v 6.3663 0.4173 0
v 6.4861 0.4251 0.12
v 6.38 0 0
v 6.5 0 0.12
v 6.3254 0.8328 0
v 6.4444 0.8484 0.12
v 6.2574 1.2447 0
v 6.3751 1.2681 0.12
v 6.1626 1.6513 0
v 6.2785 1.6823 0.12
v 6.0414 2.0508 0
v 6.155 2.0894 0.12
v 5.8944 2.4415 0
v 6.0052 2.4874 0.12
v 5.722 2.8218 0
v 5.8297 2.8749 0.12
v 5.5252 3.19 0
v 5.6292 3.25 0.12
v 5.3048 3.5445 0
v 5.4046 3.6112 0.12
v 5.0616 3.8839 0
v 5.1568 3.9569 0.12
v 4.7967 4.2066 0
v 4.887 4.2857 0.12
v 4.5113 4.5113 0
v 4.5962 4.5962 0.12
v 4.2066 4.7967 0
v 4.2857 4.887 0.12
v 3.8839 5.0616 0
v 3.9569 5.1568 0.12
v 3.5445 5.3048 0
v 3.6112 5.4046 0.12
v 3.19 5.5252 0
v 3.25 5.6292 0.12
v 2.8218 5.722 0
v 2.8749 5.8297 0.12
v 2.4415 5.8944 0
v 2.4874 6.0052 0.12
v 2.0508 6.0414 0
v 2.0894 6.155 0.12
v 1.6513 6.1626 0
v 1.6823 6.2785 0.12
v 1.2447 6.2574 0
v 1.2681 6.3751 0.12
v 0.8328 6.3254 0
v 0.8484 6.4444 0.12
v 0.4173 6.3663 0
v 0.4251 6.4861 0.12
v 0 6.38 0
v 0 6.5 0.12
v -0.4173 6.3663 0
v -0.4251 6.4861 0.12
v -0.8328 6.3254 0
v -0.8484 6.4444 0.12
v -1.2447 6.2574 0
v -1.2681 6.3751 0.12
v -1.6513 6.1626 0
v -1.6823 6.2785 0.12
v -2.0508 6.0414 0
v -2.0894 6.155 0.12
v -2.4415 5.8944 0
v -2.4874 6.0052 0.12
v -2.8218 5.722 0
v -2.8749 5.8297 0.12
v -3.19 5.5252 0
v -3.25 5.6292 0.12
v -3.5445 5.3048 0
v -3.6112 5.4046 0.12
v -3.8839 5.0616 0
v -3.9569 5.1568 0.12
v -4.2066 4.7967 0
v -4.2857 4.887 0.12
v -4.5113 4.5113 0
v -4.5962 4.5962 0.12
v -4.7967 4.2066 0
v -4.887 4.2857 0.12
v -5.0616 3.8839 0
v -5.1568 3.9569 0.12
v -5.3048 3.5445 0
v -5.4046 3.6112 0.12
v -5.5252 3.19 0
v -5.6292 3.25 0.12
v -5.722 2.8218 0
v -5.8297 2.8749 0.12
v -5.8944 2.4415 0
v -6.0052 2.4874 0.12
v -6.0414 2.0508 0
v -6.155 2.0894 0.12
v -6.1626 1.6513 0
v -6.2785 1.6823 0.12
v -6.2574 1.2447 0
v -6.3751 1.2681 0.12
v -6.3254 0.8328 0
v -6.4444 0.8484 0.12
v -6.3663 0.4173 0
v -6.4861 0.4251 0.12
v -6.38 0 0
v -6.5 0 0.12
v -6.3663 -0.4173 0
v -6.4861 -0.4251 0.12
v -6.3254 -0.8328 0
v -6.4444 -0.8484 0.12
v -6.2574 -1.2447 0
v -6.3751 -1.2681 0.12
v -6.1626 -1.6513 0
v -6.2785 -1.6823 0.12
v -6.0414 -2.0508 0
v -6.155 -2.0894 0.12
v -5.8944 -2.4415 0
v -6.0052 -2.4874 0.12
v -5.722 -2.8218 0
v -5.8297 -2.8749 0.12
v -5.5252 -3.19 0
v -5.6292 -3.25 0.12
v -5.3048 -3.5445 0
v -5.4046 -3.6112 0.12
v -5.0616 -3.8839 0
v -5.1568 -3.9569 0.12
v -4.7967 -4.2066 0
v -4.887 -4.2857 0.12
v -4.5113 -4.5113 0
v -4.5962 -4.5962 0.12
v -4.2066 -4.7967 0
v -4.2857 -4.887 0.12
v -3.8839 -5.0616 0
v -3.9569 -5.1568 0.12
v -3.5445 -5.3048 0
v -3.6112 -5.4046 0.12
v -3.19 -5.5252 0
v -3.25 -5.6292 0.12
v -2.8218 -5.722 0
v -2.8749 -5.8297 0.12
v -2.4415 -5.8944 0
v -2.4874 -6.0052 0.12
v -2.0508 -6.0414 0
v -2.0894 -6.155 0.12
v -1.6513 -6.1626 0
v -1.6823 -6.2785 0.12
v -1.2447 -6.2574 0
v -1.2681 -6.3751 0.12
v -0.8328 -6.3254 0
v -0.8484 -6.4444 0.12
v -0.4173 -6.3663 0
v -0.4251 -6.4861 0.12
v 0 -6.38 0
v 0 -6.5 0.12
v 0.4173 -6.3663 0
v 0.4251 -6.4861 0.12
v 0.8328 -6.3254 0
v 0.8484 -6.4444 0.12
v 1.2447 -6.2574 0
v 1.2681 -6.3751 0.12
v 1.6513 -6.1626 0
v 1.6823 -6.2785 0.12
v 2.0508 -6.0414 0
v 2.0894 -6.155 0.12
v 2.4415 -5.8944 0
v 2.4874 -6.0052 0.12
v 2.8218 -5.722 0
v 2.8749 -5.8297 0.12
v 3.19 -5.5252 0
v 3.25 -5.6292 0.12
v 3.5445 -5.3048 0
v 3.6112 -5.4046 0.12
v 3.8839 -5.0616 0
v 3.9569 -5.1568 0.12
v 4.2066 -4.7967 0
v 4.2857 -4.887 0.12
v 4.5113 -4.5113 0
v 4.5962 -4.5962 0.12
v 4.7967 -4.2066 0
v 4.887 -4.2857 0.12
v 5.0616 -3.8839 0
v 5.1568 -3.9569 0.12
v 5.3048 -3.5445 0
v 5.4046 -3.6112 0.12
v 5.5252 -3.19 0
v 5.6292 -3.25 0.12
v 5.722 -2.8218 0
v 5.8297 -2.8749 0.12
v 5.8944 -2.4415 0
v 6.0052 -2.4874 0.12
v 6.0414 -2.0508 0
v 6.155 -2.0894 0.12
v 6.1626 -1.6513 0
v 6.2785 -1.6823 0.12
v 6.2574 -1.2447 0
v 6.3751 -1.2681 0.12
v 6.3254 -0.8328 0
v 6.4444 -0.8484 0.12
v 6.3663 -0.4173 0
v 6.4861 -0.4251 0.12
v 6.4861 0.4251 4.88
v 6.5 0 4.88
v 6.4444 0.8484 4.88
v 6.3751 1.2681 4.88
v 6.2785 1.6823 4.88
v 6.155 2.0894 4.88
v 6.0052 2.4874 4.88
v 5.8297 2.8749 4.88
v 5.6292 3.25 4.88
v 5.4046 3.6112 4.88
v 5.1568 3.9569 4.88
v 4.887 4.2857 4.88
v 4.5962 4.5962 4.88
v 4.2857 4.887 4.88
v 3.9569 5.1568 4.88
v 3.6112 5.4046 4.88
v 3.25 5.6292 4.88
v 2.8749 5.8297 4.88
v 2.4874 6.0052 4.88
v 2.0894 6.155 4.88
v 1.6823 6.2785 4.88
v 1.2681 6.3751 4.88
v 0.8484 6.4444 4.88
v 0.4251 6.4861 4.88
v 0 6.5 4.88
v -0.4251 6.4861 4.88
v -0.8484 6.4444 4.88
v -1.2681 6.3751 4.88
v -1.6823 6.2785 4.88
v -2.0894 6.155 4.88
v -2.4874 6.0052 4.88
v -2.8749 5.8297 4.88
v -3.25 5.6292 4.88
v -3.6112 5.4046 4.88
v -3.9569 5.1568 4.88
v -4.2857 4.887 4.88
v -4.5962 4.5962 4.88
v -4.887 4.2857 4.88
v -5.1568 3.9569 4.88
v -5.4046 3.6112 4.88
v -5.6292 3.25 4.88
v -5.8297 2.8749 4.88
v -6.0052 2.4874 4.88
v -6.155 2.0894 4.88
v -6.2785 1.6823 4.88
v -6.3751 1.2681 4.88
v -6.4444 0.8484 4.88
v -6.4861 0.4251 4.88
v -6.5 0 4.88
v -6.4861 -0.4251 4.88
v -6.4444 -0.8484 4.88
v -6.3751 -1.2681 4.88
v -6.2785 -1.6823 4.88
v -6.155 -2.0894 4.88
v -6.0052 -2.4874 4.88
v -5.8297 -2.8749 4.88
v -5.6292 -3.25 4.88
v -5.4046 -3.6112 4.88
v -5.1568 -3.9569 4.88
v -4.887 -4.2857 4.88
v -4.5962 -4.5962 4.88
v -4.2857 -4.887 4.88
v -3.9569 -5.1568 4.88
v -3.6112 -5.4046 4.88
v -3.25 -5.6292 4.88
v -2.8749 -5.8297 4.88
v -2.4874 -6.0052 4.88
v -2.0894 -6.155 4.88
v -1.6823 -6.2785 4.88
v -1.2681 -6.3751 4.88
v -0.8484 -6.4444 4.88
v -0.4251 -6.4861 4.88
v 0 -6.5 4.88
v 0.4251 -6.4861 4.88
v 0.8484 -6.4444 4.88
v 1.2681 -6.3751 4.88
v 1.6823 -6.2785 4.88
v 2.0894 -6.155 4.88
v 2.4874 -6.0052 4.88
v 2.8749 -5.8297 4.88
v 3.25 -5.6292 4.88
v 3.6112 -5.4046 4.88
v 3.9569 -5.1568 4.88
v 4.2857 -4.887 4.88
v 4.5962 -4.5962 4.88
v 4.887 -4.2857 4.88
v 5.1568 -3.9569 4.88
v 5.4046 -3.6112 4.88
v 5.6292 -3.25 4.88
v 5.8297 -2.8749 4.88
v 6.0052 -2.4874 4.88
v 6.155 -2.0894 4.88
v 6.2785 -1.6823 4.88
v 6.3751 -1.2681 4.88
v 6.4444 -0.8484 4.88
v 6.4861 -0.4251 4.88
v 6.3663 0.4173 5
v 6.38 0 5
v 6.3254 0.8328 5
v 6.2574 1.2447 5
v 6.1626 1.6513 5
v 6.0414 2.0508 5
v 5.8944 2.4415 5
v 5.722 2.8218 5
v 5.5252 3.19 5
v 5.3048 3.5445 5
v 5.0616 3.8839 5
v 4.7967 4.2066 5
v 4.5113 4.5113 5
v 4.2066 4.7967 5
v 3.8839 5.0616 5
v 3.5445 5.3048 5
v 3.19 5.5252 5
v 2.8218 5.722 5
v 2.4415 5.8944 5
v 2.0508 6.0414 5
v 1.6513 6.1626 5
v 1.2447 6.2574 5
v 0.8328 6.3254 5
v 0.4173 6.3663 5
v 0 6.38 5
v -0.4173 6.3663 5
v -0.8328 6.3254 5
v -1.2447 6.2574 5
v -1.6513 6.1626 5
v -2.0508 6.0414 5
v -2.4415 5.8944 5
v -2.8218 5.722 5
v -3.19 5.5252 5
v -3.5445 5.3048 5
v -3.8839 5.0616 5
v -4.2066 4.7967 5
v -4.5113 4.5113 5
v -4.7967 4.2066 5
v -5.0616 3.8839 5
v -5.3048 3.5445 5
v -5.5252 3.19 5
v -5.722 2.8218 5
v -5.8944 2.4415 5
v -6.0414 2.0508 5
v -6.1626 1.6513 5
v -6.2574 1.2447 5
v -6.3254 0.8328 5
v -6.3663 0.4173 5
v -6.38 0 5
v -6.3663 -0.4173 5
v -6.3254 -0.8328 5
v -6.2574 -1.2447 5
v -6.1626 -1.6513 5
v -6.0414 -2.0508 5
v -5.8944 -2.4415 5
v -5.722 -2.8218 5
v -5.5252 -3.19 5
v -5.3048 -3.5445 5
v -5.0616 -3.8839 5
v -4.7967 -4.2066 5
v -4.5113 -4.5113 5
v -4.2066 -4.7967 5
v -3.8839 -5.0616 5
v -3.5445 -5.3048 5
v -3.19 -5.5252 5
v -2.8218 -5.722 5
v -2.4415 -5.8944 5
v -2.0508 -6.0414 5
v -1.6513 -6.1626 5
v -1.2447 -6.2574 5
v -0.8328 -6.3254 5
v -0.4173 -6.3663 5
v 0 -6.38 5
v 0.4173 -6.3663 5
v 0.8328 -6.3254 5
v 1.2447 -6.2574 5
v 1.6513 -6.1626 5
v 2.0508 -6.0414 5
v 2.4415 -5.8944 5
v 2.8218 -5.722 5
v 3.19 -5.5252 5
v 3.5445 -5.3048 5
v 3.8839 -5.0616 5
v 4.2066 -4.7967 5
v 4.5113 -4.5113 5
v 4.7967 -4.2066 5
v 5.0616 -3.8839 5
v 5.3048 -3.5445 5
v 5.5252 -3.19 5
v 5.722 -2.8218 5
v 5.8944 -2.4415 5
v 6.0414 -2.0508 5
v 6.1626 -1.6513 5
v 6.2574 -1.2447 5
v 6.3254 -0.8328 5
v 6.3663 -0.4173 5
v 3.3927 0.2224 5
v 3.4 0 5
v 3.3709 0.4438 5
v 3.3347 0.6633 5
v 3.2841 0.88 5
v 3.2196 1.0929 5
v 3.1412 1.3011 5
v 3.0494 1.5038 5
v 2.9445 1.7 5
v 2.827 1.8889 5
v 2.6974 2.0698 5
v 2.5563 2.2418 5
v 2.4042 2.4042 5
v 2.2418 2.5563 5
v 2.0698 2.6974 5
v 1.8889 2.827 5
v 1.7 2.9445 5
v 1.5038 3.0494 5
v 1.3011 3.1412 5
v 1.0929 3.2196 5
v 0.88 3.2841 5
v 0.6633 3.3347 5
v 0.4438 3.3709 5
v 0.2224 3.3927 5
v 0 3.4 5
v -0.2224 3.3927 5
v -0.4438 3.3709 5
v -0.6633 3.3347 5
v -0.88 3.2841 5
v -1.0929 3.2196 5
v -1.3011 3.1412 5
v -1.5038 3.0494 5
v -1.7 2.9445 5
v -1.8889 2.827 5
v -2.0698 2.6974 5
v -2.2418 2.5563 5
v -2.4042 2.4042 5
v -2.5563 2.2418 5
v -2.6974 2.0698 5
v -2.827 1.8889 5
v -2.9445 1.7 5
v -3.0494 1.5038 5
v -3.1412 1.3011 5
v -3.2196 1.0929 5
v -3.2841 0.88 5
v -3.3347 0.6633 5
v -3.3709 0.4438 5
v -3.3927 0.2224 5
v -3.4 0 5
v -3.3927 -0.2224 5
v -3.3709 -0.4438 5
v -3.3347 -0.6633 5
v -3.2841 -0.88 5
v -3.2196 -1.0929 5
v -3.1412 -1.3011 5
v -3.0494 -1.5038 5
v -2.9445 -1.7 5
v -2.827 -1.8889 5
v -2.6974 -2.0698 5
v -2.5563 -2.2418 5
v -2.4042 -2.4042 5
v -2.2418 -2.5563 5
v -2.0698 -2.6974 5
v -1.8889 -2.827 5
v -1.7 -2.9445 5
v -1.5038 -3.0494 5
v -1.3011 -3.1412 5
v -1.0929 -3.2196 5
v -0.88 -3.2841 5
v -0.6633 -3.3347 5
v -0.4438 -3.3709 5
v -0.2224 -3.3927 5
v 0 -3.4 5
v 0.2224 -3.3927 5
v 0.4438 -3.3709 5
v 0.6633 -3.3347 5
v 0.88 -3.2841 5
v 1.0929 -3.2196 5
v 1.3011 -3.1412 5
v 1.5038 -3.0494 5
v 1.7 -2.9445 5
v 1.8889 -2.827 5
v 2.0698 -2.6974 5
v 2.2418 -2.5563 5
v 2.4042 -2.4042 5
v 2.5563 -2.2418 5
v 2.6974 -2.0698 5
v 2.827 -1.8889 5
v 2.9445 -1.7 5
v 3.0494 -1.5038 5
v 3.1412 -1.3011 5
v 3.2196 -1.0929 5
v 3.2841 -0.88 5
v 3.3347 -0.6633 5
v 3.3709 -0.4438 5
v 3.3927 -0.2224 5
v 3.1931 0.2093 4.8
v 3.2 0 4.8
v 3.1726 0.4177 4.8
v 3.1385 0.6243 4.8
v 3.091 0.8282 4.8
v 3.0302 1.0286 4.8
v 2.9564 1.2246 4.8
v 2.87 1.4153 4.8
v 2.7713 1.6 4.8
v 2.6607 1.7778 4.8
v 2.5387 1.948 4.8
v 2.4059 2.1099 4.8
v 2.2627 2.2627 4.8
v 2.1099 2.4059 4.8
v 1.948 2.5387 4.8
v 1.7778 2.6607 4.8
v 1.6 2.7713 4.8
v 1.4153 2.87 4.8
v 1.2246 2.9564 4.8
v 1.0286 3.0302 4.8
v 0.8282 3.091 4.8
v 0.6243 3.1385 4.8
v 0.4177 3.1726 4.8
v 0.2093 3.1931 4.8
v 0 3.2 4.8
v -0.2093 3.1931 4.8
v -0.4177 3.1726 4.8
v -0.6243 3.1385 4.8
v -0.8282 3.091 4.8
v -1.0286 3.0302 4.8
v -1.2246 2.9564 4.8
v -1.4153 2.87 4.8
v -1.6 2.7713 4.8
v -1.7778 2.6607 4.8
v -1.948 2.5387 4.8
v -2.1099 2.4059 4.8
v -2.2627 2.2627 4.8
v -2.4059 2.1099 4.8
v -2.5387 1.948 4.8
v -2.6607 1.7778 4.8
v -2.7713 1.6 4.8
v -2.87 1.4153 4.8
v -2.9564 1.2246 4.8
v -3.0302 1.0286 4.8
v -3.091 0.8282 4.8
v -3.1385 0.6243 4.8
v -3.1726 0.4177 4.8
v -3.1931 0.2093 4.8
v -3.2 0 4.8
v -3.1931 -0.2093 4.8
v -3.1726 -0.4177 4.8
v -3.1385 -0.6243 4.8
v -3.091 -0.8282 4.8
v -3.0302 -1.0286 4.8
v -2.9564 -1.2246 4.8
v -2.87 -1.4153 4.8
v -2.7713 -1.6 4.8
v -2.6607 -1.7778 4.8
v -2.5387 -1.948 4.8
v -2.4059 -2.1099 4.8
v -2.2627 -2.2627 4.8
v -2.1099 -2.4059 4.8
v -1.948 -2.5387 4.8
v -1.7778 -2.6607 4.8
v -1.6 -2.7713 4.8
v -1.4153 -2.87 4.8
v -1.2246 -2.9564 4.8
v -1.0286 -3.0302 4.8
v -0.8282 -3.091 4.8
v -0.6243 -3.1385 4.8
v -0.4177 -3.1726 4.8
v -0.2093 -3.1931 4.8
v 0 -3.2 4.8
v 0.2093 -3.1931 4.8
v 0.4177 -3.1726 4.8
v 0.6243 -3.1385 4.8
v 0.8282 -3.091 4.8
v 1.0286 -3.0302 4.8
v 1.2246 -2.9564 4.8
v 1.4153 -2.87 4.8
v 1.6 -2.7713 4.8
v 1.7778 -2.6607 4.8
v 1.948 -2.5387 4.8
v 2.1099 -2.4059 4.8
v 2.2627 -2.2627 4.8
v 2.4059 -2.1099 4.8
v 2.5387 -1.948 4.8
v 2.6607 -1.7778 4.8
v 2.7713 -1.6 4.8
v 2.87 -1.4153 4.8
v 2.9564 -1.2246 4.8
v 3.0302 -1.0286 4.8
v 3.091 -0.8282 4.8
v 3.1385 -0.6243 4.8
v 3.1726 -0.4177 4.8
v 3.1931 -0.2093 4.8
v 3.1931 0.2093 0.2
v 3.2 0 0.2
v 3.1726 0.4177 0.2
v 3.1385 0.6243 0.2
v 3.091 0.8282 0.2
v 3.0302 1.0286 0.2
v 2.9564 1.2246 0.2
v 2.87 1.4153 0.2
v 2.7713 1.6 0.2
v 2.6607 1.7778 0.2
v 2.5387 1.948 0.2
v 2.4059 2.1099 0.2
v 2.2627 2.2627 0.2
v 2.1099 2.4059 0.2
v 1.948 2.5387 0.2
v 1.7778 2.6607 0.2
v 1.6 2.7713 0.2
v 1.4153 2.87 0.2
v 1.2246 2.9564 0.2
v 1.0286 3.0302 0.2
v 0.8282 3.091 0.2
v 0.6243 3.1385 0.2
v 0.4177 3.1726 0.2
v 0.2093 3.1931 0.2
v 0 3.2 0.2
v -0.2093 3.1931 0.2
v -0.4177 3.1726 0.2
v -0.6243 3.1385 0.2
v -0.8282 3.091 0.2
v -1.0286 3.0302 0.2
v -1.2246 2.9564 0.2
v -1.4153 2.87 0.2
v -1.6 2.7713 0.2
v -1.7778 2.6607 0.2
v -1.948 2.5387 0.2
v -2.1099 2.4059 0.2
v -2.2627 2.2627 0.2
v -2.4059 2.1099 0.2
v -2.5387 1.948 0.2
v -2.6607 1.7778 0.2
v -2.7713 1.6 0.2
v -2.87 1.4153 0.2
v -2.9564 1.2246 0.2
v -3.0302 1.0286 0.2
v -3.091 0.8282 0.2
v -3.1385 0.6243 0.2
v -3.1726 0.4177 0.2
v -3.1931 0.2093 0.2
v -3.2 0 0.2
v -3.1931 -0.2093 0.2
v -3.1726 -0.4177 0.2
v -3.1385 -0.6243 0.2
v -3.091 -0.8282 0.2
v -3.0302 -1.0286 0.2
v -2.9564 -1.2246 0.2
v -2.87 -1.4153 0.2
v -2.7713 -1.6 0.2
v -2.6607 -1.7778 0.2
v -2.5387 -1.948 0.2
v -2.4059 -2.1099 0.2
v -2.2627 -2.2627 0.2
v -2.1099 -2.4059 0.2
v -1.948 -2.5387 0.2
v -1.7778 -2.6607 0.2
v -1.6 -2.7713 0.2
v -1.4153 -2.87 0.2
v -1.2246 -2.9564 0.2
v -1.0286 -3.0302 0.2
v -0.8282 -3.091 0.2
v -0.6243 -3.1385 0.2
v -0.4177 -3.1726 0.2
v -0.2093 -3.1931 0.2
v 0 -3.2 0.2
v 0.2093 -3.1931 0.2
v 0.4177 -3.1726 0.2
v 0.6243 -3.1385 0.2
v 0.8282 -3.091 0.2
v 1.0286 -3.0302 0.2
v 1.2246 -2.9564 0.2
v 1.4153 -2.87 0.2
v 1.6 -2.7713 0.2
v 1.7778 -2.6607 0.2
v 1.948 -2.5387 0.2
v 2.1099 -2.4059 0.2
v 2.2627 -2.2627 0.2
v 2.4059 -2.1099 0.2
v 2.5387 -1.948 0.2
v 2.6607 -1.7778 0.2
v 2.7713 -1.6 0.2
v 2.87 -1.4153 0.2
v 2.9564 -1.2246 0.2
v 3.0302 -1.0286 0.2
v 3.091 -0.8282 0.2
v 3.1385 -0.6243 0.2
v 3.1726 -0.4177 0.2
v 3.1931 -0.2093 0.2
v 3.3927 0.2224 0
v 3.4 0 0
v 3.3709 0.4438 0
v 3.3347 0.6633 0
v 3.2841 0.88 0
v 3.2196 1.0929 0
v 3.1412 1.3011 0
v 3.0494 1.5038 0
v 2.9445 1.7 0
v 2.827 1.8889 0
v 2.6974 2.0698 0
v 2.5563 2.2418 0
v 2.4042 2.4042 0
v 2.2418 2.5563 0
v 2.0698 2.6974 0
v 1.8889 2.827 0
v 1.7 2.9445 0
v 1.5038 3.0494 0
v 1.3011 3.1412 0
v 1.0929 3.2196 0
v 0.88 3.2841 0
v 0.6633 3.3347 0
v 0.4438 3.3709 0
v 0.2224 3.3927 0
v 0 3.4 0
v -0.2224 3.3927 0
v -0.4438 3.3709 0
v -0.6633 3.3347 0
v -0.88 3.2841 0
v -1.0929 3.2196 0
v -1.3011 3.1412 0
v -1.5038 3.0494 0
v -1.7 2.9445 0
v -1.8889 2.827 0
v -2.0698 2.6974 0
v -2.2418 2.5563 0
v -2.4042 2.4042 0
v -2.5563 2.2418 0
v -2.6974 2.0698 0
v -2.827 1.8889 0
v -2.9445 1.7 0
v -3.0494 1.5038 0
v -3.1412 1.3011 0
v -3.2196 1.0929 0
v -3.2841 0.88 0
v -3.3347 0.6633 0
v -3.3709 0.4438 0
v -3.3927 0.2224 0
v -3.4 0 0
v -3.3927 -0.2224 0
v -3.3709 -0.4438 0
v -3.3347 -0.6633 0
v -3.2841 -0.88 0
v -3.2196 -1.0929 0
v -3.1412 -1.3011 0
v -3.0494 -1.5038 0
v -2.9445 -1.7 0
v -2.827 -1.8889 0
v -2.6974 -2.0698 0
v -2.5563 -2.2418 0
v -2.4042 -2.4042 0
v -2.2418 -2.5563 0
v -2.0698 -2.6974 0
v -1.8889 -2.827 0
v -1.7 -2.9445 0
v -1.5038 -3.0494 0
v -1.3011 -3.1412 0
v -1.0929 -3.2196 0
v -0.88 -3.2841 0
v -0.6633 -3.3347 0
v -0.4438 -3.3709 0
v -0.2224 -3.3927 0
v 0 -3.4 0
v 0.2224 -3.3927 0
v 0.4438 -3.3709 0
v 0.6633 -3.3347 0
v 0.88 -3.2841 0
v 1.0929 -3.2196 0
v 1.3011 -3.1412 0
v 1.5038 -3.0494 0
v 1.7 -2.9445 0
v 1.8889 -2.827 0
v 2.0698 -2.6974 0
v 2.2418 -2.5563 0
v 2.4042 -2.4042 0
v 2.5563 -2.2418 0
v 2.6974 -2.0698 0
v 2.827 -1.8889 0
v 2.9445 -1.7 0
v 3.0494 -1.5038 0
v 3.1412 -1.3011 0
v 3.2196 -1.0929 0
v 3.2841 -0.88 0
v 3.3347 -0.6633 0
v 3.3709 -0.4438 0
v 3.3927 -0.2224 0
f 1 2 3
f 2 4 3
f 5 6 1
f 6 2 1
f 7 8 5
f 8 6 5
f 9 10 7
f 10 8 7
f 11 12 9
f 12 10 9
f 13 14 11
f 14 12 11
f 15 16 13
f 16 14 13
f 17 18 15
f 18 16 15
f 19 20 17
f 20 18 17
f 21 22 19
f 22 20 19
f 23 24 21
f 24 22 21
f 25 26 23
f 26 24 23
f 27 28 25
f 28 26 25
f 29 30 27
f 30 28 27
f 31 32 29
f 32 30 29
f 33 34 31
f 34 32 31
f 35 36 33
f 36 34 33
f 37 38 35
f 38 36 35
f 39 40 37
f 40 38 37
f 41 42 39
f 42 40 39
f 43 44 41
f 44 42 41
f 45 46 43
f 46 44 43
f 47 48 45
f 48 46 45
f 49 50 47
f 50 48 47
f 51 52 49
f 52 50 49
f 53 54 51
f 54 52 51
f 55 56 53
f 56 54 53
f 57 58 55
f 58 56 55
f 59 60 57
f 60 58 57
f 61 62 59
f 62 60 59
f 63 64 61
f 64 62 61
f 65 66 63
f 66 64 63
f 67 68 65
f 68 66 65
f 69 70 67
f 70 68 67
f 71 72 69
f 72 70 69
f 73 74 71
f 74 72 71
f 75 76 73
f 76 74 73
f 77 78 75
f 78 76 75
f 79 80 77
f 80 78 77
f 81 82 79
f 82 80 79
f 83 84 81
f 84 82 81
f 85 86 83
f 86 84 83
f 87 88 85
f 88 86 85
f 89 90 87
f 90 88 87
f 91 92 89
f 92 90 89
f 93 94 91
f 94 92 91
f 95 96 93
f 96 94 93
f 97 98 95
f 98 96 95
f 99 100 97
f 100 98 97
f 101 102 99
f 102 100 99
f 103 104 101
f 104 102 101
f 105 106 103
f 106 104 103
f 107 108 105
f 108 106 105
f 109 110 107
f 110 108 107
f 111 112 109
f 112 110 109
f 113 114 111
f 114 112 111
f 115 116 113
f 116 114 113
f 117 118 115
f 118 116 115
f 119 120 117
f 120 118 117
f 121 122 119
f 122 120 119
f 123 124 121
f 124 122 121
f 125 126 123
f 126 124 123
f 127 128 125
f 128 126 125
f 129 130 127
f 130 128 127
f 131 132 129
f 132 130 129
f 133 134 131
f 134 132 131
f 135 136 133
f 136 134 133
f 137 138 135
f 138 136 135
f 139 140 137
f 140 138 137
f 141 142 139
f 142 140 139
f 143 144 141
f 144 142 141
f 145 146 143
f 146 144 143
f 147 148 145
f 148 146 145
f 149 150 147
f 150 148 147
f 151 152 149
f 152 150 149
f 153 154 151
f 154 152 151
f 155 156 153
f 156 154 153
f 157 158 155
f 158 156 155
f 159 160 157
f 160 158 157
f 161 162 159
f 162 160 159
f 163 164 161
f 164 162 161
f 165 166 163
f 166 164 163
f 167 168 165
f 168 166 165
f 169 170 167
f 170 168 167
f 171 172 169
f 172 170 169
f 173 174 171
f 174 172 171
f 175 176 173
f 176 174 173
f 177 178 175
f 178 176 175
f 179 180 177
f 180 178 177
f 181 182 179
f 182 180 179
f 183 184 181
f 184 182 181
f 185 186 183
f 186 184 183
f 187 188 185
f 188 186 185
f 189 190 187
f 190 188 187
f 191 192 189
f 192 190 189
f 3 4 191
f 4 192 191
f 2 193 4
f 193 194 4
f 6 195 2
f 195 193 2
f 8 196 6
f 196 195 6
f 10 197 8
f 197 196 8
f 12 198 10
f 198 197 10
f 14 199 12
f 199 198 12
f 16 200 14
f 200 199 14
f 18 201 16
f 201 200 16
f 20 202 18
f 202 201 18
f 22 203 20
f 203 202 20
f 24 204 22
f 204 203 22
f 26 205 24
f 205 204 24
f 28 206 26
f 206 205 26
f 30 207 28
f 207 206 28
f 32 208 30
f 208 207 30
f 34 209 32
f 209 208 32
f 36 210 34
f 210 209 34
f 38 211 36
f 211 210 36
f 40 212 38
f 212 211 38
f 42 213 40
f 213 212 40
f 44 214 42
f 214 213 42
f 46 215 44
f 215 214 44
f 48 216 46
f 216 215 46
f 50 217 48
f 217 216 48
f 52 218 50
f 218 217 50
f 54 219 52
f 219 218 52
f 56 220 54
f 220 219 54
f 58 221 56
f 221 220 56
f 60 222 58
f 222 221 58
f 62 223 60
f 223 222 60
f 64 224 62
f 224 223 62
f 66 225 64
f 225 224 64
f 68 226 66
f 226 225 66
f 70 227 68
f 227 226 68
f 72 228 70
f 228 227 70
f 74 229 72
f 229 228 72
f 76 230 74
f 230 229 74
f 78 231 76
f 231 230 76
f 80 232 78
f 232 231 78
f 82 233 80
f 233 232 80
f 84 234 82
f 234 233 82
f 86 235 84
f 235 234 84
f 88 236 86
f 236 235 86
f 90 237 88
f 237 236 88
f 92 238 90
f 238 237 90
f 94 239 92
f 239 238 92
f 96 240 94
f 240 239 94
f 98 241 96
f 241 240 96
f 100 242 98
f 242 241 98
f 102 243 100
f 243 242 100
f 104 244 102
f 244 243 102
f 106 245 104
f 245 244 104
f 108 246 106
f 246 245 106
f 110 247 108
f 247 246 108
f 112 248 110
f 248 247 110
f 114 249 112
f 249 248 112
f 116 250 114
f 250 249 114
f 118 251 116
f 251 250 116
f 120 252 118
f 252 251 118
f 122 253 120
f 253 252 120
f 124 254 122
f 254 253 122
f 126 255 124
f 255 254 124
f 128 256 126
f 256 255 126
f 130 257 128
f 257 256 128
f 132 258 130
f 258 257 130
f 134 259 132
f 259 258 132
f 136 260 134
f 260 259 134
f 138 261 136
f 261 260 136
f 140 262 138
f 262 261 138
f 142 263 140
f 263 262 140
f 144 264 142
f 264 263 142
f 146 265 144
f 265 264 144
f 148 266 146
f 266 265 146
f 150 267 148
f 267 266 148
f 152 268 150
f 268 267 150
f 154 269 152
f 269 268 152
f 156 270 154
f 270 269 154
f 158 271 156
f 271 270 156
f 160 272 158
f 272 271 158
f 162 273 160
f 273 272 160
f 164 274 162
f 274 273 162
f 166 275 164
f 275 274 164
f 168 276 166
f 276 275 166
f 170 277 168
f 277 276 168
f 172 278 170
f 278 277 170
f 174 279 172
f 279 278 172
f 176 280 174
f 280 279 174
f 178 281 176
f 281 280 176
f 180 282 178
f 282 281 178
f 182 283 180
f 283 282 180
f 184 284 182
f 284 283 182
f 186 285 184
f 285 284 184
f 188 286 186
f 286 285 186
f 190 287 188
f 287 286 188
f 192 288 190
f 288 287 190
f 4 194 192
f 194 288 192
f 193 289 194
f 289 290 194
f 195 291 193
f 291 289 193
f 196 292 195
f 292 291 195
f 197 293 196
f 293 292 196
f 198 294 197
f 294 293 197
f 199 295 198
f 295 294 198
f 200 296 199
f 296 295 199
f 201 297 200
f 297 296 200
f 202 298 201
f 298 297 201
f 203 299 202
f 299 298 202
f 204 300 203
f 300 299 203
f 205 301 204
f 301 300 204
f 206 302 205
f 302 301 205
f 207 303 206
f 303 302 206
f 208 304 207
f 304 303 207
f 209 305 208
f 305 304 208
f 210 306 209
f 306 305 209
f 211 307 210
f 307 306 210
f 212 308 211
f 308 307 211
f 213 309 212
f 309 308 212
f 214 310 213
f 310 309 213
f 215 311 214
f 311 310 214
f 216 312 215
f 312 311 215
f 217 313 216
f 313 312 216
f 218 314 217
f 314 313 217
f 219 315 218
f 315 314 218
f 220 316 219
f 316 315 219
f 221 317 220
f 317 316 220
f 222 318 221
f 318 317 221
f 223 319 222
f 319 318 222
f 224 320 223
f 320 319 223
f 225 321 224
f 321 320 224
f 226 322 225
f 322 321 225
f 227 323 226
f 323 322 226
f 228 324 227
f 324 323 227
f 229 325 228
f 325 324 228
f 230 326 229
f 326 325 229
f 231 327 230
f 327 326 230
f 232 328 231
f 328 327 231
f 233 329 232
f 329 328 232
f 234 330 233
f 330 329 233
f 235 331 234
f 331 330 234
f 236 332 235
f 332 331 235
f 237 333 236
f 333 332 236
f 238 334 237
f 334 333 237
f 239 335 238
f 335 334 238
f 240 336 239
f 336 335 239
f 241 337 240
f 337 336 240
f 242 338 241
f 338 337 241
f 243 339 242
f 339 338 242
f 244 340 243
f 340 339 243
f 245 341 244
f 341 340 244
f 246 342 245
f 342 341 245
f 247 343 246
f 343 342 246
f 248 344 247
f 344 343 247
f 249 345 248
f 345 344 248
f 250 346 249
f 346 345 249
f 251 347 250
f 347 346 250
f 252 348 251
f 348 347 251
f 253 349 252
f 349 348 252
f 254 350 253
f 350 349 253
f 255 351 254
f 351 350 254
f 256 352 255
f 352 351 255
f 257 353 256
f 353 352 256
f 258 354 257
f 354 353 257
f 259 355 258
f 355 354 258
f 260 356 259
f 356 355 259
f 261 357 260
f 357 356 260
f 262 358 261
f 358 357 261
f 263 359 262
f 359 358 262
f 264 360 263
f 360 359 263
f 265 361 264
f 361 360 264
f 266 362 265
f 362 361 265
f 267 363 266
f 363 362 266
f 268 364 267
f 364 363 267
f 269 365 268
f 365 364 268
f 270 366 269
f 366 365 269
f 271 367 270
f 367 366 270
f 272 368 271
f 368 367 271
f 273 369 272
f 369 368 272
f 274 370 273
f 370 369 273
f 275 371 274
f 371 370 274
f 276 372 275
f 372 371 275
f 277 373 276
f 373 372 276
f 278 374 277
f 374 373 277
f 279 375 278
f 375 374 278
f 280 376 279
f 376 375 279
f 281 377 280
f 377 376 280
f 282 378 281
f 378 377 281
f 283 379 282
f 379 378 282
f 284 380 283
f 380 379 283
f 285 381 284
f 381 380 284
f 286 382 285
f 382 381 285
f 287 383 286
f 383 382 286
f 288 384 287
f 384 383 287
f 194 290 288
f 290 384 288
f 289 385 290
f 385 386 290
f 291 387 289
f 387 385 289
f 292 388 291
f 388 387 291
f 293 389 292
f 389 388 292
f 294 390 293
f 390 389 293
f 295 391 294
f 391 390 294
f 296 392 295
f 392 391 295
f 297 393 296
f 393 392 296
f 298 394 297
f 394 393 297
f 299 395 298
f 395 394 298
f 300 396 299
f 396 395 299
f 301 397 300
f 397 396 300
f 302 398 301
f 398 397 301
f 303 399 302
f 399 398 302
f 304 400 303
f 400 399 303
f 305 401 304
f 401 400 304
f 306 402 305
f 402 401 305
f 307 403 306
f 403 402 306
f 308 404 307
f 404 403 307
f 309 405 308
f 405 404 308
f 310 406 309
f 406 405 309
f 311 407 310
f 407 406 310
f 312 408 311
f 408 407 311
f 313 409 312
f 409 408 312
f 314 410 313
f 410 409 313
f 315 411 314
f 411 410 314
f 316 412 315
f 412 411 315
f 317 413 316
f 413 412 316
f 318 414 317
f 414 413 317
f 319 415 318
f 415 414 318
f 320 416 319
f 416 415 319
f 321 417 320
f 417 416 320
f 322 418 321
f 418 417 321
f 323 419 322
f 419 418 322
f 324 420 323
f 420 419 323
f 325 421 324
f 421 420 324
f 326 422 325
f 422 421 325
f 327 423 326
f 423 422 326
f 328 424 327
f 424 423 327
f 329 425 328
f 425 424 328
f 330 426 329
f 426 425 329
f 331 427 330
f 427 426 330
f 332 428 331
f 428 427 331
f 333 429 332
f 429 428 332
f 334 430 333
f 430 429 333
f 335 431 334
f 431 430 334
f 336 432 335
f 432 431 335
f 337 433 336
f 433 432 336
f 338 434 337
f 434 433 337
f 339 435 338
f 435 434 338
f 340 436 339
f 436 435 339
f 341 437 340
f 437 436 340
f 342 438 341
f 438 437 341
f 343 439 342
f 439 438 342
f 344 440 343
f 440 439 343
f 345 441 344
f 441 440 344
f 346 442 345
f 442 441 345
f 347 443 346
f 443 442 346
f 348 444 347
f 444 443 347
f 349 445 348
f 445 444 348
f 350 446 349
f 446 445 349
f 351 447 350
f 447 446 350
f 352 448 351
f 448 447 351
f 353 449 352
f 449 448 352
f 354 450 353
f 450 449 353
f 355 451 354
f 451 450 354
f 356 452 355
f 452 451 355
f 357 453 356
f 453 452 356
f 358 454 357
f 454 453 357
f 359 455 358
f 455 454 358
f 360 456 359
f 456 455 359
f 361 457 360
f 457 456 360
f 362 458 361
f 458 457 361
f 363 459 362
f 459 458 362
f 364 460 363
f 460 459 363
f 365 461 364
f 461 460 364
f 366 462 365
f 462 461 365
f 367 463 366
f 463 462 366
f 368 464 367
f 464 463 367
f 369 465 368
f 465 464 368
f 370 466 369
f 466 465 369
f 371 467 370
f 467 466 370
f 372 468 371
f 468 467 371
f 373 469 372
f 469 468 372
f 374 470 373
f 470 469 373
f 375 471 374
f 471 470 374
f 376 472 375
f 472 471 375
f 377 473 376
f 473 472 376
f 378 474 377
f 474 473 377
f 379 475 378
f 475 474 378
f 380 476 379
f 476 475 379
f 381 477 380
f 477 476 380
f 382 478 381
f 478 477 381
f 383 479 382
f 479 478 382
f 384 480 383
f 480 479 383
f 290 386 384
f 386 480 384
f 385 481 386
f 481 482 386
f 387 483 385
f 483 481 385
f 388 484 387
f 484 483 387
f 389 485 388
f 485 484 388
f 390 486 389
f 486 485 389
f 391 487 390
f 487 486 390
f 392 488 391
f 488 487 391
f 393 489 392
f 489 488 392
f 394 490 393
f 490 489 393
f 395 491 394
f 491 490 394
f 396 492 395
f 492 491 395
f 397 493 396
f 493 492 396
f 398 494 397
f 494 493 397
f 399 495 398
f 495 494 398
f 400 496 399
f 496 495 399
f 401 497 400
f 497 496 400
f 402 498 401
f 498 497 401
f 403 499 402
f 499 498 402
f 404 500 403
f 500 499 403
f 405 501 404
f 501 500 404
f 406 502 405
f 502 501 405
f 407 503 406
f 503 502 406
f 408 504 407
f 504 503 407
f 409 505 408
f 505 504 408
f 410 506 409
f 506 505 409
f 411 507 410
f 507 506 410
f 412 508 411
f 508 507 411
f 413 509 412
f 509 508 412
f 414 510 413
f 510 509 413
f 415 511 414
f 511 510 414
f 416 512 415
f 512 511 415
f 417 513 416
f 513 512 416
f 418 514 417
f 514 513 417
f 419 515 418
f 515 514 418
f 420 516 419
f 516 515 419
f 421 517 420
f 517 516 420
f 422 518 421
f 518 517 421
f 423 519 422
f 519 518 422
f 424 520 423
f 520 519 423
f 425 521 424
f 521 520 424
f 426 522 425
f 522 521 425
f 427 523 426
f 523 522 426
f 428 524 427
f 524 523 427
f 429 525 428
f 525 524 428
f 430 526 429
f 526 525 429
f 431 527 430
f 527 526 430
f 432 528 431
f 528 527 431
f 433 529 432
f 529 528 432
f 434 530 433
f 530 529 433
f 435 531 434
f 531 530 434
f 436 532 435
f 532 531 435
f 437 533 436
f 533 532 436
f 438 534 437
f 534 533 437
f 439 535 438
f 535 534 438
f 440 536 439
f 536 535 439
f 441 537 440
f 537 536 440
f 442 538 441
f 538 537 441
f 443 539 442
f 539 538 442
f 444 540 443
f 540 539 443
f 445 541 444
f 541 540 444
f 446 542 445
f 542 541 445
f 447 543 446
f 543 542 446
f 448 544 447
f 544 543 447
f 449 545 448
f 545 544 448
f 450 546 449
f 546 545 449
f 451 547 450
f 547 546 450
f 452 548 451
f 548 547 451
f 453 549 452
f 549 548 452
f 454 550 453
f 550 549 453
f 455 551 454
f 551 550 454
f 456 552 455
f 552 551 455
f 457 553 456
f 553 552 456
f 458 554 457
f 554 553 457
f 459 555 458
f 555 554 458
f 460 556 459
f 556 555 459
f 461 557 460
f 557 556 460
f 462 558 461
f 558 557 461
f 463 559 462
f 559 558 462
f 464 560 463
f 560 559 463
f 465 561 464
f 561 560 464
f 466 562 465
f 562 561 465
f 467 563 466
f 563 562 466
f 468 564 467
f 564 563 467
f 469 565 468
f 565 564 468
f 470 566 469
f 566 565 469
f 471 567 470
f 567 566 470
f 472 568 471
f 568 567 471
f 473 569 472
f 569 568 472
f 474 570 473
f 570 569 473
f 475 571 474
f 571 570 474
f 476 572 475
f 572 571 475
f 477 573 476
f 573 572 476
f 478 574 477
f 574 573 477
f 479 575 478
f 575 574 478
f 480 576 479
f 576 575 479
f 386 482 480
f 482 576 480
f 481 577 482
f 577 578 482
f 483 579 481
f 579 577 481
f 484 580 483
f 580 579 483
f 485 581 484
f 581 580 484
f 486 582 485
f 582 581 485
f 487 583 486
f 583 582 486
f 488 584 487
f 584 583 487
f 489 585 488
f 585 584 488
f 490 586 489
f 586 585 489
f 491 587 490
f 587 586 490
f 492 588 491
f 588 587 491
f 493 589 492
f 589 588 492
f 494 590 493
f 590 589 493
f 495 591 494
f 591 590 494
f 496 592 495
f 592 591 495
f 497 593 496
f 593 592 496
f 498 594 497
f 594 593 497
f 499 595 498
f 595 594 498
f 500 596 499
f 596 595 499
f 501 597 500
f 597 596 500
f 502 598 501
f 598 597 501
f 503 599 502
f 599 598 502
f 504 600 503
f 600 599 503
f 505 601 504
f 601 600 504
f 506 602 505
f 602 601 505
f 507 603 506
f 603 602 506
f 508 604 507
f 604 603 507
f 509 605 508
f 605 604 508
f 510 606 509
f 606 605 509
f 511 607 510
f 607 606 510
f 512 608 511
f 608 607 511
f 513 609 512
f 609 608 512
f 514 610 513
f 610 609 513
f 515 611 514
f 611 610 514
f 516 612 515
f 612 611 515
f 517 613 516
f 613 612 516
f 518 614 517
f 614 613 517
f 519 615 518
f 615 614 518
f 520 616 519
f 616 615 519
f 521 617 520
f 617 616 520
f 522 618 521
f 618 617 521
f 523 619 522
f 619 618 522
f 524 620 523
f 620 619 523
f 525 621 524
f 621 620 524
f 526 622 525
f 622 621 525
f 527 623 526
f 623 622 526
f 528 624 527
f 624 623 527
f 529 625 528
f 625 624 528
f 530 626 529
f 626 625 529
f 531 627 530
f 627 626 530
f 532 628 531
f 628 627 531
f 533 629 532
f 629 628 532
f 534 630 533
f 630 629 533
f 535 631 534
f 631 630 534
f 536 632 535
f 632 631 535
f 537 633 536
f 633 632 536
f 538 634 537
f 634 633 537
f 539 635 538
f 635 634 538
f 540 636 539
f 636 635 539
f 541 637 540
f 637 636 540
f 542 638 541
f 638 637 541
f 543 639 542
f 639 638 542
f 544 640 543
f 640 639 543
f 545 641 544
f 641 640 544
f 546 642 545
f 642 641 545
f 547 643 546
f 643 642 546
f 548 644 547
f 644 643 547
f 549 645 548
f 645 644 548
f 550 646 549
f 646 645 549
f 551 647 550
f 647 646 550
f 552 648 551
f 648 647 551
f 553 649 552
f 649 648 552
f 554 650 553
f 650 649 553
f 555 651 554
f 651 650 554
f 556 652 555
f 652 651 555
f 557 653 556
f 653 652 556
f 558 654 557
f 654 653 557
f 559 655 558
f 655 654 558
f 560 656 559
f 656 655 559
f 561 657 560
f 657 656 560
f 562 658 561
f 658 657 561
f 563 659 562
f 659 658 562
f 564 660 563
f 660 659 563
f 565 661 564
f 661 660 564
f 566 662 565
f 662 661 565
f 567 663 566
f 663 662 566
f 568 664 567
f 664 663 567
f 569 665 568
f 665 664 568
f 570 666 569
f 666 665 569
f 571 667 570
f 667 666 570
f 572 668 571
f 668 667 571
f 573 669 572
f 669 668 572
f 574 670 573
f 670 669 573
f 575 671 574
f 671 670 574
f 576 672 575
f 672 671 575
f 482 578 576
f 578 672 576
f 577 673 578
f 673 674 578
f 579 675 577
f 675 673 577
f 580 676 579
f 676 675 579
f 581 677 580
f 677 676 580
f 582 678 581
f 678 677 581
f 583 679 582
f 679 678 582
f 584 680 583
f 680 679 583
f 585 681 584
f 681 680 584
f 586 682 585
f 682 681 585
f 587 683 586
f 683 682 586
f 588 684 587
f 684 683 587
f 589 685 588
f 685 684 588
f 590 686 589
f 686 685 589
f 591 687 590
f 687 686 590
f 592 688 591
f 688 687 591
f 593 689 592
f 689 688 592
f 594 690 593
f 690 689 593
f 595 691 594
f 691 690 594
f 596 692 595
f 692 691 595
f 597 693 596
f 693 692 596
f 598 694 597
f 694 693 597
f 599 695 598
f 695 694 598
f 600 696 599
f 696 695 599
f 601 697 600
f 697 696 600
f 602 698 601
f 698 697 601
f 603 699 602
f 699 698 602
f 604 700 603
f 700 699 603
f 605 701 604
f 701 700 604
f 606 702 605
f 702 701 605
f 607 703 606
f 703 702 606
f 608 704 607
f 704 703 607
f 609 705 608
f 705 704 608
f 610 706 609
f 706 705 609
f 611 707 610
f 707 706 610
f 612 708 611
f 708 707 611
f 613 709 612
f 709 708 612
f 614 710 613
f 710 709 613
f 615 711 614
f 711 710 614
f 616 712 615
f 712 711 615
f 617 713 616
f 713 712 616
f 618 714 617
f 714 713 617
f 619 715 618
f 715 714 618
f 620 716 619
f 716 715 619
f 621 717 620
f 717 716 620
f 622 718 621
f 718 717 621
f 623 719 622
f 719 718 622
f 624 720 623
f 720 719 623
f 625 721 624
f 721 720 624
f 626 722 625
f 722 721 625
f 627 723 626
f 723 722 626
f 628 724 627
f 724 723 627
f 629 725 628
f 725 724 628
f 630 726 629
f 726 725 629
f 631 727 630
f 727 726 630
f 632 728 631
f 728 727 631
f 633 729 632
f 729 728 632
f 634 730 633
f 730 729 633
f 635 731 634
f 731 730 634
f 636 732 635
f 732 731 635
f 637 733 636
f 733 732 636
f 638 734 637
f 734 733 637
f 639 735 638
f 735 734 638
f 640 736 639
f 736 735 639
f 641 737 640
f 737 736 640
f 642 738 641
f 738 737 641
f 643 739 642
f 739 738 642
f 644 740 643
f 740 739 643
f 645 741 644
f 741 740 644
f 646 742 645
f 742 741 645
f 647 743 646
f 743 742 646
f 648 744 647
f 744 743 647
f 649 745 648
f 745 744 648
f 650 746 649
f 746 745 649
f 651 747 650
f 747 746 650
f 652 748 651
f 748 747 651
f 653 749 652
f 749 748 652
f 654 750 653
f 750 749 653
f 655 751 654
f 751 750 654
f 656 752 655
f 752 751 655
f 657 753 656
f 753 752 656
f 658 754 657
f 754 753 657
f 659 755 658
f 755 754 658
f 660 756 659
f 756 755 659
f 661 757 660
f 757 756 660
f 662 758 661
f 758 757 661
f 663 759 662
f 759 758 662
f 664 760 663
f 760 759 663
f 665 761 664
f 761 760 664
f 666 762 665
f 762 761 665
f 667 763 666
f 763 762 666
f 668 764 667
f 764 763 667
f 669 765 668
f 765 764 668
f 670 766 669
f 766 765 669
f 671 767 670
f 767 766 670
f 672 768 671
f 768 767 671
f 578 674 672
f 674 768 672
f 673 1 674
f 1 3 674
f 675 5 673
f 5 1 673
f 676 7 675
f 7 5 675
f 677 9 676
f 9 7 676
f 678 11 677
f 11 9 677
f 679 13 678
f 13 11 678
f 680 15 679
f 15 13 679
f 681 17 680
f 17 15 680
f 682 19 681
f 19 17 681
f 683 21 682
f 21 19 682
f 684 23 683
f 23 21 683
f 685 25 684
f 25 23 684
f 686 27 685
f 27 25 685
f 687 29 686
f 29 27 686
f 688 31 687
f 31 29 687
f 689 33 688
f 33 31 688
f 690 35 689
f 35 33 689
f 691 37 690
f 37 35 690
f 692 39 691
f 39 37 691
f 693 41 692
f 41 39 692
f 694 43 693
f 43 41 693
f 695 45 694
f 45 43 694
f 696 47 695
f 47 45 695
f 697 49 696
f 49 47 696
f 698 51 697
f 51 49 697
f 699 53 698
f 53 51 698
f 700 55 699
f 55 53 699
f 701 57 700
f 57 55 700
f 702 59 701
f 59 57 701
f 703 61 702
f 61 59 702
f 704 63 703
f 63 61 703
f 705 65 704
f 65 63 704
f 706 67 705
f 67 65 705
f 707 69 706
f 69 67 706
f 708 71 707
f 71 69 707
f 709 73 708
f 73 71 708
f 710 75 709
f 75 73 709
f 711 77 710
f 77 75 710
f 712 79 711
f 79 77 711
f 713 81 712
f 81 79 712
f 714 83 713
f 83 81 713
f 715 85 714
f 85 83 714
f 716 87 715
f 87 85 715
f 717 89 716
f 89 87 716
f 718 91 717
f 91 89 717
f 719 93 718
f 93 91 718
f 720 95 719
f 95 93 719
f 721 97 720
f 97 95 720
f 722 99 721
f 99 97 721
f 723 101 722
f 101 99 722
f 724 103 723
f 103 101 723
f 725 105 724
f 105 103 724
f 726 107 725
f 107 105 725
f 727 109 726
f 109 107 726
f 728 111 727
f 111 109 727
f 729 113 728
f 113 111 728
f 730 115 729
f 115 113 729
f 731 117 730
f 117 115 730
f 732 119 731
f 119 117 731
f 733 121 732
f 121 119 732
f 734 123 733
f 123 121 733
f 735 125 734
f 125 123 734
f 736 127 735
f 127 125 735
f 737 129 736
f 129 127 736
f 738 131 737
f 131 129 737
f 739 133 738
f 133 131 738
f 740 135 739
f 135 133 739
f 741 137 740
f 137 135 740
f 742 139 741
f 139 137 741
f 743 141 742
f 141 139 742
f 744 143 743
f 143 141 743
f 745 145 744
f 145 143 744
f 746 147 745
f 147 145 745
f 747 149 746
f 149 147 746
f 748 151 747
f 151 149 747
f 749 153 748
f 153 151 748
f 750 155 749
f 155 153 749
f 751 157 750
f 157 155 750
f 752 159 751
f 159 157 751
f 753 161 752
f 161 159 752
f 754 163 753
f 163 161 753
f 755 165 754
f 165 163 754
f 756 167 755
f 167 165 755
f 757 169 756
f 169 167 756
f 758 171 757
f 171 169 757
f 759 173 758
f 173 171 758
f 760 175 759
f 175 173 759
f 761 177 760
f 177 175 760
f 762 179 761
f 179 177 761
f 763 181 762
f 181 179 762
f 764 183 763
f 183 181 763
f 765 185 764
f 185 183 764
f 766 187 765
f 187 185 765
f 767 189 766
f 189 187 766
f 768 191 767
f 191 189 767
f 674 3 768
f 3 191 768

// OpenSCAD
// OOMP generic catalogue model; units: mm.
// Stud length is additional to body depth. Tapping depths are model assumptions.
variant = "full"; // [full, display]
family = "spacer";
connection_type = "plain";
depth_mm = 5;
stud_length_mm = 0;
tapped_depth_mm = 0;
bore_mm = 6.4;
outer_diameter_mm = 13;
across_flats_mm = 6;
thread_nominal_diameter_mm = 3;
thread_pitch_mm = 0.5;
edge_chamfer_mm = 0.12;
mouth_chamfer_mm = 0.2;
angular_segments = 96;
samples_per_pitch = 16;

// Boundary travels up the outside, then down any tapped/plain bore.
// Equal-height rings at shoulders form the annular shoulder faces.
n = angular_segments;
threaded = family == "standoff";
has_stud = connection_type == "stud_to_tapped" || connection_type == "stud_to_stud";
two_studs = connection_type == "stud_to_stud";
through = !threaded || connection_type == "tapped_to_tapped";
pitch = thread_pitch_mm;
diameter = threaded ? thread_nominal_diameter_mm : bore_mm;
minor = diameter - 5*sqrt(3)*pitch/8;
transition = mouth_chamfer_mm + (threaded ? 5*sqrt(3)*pitch/16 : 0);
tip_chamfer = mouth_chamfer_mm + 17*sqrt(3)*pitch/48;
function sorted(v) = len(v)<=1 ? v : let(p=v[0])
    concat(sorted([for(x=v) if(x<p-1e-8) x]), [p], sorted([for(x=v) if(x>p+1e-8) x]));
function reverse(v) = [for(i=[len(v)-1:-1:0]) v[i]];
function theta(i) = i*360/n;
function fract(x) = x-floor(x);
function phase_distance(i,z) = abs(fract(z/pitch-theta(i)/360+0.5)-0.5);
function thread_r(i,z) = minor/2 + min(5*sqrt(3)*pitch/16,
    max(0,(phase_distance(i,z)-0.125)*pitch*sqrt(3)));
function stud_r(i,z,tip) = min(diameter/2 - (variant=="full" ?
    min(17*sqrt(3)*pitch/48,max(0,(phase_distance(i,z)-0.0625)*pitch*sqrt(3))) : 0),
    diameter/2-tip_chamfer+abs(z-tip));
function body_r(i,z) = (threaded ? across_flats_mm/2/cos(theta(i)%60-30) : outer_diameter_mm/2)
    - max(0,edge_chamfer_mm-min(z,depth_mm-z));
function bore_r(i,z) = max(threaded ? (variant=="full" ? thread_r(i,z) : minor/2) : diameter/2,
    diameter/2+mouth_chamfer_mm-(through ? min(z,depth_mm-z) : depth_mm-z));
function stud_z(a,b,tip) = let(count=variant=="full" ? ceil(stud_length_mm/pitch*samples_per_pitch) : 1)
    sorted(concat([for(i=[0:count]) a+(b-a)*i/count], [tip==a ? tip+tip_chamfer : tip-tip_chamfer]));
body_z = sorted([0,edge_chamfer_mm,depth_mm-edge_chamfer_mm,depth_mm]);
low = through ? 0 : depth_mm-tapped_depth_mm;
count = threaded && variant=="full" ? ceil((depth_mm-low)/pitch*samples_per_pitch) : 1;
bore_z = two_studs ? [] : reverse(sorted(concat(
    [for(i=[0:count]) low+(depth_mm-low)*i/count],
    [depth_mm-mouth_chamfer_mm,depth_mm-transition],
    through ? [mouth_chamfer_mm,transition] : [])));
// Ring descriptors: [height, kind, tip]. Kind: 0 body, 1 stud, 2 bore.
rings = concat(
    has_stud ? [for(z=stud_z(-stud_length_mm,0,-stud_length_mm)) [z,1,-stud_length_mm]] : [],
    [for(z=body_z) [z,0,0]],
    two_studs ? [for(z=stud_z(depth_mm,depth_mm+stud_length_mm,depth_mm+stud_length_mm)) [z,1,depth_mm+stud_length_mm]] : [],
    [for(z=bore_z) [z,2,0]]);
function radius(i,ring) = ring[1]==0 ? body_r(i,ring[0]) :
    ring[1]==1 ? stud_r(i,ring[0],ring[2]) : bore_r(i,ring[0]);
points = concat([for(ring=rings) for(i=[0:n-1])
    [radius(i,ring)*cos(theta(i)),radius(i,ring)*sin(theta(i)),ring[0]]],
    through ? [] : [[0,0,rings[0][0]],[0,0,rings[len(rings)-1][0]]]);
center = len(rings)*n;
last = (len(rings)-1)*n;
// OpenSCAD winding is opposite to STL winding.
faces = concat(
    [for(j=[0:len(rings)-(through ? 1 : 2)]) for(i=[0:n-1]) each
        let(a=j*n+i,b=j*n+(i+1)%n,c=((j+1)%len(rings))*n+(i+1)%n,d=((j+1)%len(rings))*n+i)
        [[a,c,b],[a,d,c]]],
    through ? [] : [for(i=[0:n-1]) each let(k=(i+1)%n)
        [[center,i,k],[center+1,last+k,last+i]]]);
assert(family=="spacer" || family=="standoff");
assert(!threaded || connection_type=="tapped_to_tapped" || has_stud);
assert(depth_mm>0 && diameter>0 && pitch>0);
assert(variant=="full" || variant=="display");
assert(n>=24 && n%12==0 && samples_per_pitch>=8);
assert(mouth_chamfer_mm>0 && mouth_chamfer_mm<depth_mm/2);
assert(edge_chamfer_mm>=0 && edge_chamfer_mm<depth_mm/2);
assert(diameter+4*max(mouth_chamfer_mm,edge_chamfer_mm) < (threaded ? across_flats_mm : outer_diameter_mm));
assert(!has_stud || stud_length_mm>2*mouth_chamfer_mm);
assert(!through || !threaded || 2*transition<depth_mm);
assert(connection_type!="stud_to_tapped" || (tapped_depth_mm>transition && tapped_depth_mm<depth_mm));
color([0.86,0.85,0.81]) polyhedron(points=points,faces=faces,convexity=20);
